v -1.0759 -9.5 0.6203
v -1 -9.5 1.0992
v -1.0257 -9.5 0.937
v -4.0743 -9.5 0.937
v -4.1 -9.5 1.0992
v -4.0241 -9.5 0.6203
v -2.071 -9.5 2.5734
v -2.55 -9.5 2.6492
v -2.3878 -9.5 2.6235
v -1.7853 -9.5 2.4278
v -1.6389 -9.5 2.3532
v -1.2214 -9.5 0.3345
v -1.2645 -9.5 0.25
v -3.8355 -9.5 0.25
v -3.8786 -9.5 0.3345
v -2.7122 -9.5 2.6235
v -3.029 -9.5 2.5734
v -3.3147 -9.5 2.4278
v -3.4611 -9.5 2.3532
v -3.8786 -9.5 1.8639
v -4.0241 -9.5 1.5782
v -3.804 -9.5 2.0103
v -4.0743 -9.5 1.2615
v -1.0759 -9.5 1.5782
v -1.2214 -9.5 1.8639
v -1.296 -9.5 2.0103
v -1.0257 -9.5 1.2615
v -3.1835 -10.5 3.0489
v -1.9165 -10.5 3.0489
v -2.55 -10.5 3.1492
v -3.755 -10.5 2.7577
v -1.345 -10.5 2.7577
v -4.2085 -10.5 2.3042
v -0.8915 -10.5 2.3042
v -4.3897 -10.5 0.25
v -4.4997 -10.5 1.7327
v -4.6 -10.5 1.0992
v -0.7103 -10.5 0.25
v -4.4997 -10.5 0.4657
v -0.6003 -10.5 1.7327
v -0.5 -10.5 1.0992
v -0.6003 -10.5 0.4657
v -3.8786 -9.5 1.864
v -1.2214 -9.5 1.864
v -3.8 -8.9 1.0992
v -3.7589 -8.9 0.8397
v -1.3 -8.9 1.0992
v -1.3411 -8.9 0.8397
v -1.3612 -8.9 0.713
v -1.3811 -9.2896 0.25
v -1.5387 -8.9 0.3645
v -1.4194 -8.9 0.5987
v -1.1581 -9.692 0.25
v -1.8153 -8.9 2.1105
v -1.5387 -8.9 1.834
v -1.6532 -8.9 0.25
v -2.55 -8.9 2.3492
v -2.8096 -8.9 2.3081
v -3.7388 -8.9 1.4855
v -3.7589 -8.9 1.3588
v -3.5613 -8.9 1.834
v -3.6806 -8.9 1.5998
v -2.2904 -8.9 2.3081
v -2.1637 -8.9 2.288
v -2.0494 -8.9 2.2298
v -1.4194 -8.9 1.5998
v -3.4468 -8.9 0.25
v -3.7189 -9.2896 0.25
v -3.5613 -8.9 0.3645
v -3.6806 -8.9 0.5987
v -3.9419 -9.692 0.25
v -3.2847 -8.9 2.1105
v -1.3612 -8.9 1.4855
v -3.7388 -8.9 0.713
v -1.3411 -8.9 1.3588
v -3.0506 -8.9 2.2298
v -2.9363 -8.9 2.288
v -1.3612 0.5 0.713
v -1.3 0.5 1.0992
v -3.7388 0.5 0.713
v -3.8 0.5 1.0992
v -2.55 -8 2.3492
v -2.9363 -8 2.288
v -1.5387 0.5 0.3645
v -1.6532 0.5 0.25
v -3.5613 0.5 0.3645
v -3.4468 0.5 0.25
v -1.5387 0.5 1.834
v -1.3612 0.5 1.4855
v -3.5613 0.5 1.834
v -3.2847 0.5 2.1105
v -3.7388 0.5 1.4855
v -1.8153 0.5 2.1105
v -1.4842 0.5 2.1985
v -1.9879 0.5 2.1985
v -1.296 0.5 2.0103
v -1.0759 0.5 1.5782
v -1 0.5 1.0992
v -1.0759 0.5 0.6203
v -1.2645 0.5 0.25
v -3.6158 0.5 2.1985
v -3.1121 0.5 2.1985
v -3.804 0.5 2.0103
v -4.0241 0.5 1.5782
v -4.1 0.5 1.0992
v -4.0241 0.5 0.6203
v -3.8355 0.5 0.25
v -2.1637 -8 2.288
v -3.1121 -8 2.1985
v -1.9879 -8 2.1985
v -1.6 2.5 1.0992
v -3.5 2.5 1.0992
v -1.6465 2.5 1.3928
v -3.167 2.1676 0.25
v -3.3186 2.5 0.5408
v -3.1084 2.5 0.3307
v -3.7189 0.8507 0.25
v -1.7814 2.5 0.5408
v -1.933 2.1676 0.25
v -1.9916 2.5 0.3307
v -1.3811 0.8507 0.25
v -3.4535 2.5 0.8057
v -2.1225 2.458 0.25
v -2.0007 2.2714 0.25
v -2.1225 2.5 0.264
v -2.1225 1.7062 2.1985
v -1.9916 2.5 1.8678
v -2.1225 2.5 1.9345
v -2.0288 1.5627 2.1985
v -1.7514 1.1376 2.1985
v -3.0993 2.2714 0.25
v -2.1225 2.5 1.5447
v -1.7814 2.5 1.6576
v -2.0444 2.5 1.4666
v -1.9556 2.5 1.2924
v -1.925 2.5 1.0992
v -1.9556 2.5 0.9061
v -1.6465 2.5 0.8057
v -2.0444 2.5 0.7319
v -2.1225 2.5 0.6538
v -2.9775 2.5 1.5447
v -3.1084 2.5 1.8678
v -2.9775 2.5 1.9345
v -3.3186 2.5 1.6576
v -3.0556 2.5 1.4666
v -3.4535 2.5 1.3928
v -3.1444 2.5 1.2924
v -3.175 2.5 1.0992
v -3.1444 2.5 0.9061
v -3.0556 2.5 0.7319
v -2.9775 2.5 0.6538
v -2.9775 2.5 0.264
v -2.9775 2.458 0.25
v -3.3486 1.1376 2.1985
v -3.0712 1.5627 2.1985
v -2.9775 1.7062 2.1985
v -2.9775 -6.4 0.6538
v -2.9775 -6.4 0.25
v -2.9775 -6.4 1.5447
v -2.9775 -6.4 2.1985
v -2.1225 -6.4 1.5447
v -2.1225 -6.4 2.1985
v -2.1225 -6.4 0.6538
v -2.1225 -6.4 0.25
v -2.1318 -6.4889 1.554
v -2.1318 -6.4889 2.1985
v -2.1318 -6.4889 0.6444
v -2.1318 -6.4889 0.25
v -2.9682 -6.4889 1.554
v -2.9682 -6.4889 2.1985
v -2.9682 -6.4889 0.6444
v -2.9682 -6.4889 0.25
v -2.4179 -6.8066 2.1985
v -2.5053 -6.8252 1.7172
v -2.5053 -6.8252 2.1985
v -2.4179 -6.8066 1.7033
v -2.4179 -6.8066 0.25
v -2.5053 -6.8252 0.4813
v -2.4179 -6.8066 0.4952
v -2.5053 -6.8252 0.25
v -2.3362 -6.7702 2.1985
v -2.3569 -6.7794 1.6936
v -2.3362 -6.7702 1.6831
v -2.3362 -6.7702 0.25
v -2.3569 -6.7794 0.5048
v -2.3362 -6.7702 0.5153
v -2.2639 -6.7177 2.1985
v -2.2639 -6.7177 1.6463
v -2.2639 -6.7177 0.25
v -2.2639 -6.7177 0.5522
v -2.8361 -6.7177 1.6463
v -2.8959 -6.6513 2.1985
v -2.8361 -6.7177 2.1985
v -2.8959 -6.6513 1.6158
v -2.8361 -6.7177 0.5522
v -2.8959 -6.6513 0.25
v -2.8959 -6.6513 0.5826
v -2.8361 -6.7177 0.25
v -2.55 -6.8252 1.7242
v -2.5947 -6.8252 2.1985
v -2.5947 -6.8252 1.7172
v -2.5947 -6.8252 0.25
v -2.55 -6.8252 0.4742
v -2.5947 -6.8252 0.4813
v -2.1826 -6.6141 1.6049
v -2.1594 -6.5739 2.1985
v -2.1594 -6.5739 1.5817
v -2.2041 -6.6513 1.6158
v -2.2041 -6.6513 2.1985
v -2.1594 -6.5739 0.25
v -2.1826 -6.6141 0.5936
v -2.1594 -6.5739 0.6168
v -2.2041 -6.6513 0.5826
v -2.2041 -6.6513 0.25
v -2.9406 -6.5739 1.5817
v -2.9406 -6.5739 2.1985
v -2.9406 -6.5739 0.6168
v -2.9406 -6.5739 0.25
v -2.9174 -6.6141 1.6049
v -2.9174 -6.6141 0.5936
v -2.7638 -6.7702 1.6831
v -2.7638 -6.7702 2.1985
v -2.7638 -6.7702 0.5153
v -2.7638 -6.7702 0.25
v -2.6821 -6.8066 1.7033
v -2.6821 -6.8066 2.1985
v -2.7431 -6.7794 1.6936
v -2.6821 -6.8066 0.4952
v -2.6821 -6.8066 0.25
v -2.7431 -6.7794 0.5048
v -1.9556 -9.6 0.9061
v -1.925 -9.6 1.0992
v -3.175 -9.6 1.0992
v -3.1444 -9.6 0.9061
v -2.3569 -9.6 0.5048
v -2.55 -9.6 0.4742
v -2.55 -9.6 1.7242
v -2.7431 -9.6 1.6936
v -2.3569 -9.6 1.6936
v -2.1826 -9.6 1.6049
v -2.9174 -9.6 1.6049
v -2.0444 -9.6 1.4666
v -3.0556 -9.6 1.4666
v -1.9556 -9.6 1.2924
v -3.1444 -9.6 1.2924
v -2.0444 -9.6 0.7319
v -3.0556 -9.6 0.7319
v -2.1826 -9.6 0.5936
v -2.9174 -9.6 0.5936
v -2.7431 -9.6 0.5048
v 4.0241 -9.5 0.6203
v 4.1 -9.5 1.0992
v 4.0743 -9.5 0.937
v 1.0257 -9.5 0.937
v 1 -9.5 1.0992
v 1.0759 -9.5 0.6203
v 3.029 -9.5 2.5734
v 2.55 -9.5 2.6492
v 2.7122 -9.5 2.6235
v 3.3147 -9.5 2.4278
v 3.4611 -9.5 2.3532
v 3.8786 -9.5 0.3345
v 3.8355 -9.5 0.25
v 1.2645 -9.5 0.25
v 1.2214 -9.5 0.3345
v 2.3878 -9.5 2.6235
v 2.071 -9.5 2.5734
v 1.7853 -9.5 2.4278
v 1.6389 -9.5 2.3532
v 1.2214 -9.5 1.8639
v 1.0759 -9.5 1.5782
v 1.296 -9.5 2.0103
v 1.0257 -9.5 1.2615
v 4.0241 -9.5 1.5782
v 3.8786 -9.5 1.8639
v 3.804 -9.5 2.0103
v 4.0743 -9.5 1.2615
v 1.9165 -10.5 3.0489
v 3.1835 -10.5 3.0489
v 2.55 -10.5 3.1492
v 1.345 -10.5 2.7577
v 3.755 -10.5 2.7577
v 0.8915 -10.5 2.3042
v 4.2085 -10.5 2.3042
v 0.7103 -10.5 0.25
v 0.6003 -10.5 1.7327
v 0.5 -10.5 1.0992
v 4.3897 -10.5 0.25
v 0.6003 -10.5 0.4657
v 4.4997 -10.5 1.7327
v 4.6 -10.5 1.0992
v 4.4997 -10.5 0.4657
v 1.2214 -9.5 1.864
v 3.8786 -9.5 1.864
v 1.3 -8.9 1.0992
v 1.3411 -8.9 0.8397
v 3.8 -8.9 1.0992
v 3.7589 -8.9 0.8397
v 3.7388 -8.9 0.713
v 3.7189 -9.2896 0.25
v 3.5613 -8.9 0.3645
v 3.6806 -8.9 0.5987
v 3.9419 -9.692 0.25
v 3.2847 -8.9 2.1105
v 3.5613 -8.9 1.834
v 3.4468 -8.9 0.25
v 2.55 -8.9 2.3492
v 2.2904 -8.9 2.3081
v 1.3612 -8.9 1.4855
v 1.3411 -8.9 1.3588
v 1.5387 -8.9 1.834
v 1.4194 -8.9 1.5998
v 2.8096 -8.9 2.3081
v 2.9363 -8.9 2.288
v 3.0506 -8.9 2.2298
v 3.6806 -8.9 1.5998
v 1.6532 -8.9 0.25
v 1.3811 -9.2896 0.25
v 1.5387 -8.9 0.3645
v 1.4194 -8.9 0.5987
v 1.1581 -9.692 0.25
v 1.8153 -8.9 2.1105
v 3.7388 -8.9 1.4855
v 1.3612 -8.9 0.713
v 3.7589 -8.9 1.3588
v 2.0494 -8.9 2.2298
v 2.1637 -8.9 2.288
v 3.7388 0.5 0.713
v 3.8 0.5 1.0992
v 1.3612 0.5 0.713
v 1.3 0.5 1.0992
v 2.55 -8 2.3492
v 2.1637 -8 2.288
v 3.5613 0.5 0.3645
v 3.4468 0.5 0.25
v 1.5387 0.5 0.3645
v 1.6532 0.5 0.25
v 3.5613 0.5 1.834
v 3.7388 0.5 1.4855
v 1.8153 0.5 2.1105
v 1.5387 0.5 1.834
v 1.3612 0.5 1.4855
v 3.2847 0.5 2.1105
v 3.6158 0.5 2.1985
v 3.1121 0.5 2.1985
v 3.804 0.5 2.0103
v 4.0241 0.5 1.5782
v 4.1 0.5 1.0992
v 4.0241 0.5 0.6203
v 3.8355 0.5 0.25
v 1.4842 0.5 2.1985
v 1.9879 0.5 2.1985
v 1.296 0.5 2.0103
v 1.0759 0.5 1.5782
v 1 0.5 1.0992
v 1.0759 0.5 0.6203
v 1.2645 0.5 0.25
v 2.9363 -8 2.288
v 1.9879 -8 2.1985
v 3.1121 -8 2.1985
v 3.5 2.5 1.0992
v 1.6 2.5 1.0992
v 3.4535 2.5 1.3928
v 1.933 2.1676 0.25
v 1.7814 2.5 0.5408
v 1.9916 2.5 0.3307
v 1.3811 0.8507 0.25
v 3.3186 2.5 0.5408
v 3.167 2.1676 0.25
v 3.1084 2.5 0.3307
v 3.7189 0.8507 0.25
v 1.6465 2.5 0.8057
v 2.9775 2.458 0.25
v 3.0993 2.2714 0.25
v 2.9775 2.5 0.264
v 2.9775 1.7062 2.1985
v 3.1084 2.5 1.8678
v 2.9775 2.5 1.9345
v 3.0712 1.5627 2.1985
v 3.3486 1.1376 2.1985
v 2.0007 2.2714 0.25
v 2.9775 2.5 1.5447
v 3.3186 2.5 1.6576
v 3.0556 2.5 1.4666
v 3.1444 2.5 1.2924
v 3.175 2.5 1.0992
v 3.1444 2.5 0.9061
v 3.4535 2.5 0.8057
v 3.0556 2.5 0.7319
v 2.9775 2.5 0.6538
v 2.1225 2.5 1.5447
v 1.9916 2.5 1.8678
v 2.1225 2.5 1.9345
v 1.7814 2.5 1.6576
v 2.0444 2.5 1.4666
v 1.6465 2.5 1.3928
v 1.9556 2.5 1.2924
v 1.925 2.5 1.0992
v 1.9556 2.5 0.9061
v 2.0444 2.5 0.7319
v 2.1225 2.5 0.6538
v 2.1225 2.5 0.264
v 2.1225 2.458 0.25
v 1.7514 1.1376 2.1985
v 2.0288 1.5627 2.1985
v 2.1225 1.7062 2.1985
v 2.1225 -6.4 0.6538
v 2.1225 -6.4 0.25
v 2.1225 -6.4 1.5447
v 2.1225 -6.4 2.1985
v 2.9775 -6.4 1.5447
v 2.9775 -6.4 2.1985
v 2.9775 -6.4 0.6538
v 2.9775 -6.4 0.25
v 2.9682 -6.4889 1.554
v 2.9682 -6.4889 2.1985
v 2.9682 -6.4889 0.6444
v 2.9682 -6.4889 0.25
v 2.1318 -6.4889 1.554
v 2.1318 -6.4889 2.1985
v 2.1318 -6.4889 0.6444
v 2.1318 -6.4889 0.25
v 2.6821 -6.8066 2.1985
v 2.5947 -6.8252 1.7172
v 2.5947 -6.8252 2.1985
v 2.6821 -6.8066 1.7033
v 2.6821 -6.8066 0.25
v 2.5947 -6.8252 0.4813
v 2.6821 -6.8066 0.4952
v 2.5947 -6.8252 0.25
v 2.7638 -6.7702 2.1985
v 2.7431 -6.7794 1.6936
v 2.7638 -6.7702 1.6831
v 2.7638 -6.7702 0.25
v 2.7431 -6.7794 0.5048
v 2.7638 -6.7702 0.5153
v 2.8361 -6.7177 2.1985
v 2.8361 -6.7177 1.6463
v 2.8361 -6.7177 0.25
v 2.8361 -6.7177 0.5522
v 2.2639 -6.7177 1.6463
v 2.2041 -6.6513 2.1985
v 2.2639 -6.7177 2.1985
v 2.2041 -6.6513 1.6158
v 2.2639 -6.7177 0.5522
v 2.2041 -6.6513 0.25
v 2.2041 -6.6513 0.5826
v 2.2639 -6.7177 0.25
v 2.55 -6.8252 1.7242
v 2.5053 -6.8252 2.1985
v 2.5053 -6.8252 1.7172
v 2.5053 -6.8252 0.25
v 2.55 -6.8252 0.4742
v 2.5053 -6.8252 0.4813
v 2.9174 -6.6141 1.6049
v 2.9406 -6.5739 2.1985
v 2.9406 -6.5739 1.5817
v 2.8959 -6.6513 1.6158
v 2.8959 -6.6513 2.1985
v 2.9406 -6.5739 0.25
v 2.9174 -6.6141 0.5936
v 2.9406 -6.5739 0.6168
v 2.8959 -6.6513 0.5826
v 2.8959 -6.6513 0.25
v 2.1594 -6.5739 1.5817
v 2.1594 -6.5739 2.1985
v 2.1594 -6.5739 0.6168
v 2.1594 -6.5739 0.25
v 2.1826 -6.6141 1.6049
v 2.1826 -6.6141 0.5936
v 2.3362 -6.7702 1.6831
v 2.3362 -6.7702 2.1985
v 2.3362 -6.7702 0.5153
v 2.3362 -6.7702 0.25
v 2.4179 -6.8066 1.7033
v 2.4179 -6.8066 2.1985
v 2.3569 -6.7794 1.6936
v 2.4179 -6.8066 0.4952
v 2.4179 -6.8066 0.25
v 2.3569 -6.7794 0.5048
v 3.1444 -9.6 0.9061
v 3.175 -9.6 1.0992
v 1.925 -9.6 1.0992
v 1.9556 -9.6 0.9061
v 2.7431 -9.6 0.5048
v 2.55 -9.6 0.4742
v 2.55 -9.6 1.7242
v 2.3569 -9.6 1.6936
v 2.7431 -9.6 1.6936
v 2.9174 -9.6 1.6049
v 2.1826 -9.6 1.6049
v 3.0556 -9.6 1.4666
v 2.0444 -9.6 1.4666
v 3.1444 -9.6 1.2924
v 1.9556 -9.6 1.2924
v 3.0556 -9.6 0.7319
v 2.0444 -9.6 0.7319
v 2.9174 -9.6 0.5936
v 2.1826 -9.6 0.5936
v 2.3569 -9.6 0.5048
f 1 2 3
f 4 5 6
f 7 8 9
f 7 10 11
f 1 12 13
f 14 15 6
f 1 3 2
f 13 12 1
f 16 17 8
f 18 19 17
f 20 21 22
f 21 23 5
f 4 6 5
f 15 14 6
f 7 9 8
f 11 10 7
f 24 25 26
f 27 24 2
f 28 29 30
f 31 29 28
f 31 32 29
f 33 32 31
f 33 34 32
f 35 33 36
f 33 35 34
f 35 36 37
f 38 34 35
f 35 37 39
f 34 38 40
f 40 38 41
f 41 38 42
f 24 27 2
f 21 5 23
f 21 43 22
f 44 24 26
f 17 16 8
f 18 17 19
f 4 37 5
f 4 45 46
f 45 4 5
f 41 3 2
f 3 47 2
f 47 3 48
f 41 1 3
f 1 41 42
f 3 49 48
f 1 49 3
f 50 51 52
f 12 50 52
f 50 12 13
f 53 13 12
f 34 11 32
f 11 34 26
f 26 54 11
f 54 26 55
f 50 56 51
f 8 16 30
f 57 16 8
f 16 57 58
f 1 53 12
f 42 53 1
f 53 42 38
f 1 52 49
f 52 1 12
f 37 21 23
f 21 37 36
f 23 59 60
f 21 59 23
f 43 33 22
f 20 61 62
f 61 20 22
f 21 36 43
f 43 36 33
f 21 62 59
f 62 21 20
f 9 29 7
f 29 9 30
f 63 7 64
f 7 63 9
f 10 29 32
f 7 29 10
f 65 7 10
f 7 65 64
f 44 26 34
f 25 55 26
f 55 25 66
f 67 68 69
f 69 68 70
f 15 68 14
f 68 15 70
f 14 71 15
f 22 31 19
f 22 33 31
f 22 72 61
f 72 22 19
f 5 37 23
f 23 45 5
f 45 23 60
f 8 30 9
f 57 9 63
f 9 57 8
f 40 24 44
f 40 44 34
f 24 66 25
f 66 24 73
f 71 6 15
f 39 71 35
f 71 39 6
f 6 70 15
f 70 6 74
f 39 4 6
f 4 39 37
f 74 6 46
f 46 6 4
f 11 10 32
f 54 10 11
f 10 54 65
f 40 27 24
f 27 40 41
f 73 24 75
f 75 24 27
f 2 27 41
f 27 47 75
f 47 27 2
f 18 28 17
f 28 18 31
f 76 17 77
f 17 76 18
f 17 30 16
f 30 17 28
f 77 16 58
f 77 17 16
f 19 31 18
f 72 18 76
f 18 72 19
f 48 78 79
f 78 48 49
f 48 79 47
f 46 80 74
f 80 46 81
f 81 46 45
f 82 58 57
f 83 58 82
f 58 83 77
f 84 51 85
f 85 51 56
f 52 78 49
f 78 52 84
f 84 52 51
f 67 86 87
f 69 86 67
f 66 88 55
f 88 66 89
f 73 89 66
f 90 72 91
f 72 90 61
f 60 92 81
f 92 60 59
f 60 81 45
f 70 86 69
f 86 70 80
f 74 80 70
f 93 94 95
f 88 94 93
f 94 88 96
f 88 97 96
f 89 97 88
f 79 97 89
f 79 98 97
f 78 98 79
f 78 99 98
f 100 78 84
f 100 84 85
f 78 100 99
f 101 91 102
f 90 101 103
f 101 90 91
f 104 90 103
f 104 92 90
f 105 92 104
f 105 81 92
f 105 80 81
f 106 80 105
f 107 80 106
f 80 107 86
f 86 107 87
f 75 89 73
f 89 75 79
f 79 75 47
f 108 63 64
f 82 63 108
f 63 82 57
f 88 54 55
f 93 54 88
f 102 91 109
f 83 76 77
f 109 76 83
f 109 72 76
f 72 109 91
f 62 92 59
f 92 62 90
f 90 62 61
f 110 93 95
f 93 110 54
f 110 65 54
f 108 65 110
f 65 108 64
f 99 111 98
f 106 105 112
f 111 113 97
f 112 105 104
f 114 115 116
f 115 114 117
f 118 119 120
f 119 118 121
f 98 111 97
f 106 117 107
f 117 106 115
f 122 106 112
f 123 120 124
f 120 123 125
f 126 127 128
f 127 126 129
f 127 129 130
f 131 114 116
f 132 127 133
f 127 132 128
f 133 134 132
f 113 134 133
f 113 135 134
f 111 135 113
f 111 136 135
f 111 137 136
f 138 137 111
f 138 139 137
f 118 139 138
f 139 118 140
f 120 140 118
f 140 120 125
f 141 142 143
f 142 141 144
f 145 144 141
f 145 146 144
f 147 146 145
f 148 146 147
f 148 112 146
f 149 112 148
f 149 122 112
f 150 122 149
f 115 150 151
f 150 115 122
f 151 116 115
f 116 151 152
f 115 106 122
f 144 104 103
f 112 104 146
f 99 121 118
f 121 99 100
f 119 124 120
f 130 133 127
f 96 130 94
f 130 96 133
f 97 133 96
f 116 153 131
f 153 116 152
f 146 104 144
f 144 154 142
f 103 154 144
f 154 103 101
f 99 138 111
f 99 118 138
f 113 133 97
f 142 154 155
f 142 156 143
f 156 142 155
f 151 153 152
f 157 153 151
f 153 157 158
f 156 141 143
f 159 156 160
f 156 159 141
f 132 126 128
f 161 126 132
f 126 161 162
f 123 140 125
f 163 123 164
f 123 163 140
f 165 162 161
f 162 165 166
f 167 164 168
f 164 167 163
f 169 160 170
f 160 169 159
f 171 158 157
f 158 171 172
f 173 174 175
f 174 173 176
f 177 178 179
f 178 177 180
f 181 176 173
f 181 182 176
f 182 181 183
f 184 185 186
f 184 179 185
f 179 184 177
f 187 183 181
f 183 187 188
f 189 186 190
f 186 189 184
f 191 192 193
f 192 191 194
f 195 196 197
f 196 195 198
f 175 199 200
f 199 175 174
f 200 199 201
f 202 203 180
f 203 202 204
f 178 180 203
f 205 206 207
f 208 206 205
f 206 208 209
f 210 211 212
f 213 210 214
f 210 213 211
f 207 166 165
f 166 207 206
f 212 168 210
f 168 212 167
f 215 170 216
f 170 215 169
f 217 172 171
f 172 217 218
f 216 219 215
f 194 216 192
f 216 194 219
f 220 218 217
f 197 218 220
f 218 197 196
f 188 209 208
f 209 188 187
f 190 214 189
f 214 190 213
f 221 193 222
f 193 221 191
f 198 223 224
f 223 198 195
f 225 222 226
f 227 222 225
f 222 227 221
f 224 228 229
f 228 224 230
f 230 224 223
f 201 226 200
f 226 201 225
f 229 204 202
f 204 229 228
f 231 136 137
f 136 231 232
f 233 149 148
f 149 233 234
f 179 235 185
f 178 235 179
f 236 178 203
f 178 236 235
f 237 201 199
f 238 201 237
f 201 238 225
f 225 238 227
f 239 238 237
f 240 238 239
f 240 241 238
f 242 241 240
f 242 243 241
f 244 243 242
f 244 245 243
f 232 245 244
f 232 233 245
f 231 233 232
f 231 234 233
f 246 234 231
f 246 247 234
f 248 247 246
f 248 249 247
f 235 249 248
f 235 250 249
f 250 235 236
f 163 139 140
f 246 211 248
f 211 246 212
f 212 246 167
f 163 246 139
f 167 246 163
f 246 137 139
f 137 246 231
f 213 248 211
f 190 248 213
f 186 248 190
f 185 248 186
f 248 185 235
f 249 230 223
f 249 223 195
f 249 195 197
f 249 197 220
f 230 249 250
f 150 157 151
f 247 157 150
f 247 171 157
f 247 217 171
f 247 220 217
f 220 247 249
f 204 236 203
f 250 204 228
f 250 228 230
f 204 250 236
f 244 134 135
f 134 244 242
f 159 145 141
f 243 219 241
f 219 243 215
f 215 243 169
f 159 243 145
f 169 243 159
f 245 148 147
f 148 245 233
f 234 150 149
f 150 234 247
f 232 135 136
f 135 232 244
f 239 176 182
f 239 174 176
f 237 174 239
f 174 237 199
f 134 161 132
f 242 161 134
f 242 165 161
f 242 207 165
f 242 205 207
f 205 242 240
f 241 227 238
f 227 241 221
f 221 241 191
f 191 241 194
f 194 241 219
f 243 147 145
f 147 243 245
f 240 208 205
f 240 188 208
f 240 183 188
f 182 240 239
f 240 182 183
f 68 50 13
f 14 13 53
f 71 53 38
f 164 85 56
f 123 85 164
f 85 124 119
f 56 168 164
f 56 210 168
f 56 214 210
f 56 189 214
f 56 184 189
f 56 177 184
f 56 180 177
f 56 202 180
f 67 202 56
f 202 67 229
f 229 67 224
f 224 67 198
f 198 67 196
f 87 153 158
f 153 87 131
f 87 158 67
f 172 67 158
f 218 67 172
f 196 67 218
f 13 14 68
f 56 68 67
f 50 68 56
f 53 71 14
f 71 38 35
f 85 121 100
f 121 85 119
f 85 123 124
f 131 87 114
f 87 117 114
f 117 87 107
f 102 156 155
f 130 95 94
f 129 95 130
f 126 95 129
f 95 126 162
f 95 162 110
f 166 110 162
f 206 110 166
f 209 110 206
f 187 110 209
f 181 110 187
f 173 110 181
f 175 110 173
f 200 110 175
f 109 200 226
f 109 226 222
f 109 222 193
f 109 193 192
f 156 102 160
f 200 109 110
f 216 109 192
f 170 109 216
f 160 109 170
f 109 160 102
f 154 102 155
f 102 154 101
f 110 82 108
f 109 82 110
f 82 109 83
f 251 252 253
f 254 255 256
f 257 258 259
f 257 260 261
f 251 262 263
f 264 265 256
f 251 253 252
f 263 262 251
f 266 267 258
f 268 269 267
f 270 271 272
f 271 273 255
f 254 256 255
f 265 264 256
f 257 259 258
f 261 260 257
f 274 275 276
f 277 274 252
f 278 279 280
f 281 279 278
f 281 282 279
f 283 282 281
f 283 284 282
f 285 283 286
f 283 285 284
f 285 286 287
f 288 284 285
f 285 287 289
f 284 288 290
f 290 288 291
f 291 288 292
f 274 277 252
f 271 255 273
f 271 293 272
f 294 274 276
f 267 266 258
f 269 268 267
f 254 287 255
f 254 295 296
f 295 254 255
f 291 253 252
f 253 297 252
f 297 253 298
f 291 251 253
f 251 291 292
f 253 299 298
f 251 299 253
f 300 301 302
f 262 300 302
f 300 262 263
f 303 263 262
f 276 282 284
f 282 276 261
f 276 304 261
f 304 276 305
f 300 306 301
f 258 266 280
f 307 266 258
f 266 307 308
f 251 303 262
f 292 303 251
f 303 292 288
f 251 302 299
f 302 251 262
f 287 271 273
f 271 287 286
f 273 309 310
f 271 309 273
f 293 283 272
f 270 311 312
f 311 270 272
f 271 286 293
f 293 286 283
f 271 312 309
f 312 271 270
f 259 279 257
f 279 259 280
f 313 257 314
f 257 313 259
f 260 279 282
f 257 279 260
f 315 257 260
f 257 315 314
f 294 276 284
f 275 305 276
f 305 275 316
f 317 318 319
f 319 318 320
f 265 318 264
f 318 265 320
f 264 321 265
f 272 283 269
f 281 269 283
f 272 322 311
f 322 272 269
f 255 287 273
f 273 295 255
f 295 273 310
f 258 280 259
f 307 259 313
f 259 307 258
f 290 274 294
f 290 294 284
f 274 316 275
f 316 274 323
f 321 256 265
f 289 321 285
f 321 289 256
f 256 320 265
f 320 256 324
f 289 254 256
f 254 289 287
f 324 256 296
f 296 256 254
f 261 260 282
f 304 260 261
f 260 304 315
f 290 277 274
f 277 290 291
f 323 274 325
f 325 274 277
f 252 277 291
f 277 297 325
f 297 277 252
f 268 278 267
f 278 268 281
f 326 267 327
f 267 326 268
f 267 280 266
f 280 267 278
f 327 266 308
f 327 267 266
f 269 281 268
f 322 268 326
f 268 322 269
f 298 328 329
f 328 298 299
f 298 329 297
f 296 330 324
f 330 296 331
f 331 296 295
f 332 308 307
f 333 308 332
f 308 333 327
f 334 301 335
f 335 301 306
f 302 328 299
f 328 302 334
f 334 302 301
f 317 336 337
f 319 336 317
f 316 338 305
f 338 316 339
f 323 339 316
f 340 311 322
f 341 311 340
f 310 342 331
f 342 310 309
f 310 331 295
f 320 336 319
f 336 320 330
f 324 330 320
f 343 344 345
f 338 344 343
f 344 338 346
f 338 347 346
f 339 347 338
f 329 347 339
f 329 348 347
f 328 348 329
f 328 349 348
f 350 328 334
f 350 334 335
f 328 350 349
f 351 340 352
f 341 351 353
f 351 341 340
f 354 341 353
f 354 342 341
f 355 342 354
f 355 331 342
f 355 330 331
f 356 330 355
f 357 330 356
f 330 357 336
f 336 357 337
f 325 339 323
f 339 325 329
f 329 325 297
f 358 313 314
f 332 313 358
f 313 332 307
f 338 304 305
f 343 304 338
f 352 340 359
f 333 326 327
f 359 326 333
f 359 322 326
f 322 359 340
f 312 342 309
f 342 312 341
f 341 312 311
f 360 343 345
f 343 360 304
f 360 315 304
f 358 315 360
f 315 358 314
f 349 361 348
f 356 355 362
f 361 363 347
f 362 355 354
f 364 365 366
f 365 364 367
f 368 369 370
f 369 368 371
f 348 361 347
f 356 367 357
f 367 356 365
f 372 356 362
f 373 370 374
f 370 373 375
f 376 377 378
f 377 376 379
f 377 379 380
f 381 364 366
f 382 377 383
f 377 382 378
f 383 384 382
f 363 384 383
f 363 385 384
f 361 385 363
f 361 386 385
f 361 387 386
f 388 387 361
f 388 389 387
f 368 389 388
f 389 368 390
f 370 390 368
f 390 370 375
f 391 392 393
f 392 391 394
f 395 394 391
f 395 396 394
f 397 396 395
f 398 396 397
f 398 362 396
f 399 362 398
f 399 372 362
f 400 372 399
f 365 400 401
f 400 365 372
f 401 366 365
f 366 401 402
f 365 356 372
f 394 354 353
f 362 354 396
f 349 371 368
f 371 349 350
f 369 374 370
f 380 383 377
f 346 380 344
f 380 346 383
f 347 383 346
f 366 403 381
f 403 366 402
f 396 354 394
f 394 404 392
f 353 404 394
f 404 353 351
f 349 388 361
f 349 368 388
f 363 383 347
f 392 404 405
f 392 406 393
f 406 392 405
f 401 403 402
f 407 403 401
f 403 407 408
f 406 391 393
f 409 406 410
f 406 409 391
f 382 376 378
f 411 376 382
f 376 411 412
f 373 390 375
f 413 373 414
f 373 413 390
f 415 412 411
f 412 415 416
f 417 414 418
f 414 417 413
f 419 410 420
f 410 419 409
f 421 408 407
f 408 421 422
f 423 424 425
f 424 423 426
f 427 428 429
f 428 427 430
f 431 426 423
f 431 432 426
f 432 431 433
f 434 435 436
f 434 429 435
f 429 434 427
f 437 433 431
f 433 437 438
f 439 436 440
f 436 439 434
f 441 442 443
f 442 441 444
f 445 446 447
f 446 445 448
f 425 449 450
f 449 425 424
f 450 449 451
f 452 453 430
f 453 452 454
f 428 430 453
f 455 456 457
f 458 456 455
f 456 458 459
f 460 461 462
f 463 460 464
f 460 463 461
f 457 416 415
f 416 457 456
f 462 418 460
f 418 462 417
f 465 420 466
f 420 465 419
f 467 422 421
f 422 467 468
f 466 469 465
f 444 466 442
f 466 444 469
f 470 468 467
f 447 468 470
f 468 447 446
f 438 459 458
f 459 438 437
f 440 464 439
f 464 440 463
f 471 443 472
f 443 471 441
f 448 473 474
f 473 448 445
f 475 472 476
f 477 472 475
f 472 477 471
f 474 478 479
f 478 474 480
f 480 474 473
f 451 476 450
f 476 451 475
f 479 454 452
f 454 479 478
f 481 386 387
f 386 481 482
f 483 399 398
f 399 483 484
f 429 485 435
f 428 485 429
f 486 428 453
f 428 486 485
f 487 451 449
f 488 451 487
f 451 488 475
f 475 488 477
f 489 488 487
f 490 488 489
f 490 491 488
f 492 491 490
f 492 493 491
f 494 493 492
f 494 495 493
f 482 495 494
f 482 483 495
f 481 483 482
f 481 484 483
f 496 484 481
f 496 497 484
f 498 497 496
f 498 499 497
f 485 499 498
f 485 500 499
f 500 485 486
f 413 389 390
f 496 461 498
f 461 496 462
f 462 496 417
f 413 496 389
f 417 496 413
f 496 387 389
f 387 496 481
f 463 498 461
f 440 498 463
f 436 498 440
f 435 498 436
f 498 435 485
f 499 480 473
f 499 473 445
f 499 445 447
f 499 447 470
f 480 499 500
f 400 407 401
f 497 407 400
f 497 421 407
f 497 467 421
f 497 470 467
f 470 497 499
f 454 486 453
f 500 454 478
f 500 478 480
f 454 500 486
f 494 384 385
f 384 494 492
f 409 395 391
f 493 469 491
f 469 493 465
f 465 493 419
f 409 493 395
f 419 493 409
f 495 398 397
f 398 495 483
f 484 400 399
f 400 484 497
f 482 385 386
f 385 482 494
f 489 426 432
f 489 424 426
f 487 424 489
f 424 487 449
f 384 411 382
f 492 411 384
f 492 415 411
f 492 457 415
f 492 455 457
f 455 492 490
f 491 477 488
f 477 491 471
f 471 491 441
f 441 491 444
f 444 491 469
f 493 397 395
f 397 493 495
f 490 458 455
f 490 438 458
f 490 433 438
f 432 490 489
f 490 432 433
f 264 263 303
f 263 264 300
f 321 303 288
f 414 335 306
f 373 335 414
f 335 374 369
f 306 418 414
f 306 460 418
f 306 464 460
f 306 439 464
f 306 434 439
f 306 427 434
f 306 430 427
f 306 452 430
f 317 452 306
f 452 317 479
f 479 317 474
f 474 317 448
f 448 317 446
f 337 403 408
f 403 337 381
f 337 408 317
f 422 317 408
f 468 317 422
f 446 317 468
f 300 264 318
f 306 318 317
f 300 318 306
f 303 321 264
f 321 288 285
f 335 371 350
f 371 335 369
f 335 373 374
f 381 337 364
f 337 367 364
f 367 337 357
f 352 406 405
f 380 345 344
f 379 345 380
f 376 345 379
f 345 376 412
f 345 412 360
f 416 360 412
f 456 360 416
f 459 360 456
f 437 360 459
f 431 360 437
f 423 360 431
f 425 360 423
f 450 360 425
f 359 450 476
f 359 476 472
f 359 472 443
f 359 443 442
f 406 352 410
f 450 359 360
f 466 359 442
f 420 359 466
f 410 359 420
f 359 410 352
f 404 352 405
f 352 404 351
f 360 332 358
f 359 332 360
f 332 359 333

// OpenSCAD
// Compact Board clip
// For Raspberry Pi Zero Test Controller (Brian Khuu 2019)
// Remixed from https://www.thingiverse.com/thing:1520316/files Board clip by robidouille Apr 27, 2016

//hole = 2.8; // Arduino
hole = 2.5; // Raspberry Pi

marginT = 0.6; // Controls the size of the grip
marginB = marginT;
skirt = 1;
rise = 10;
bump = 1;
thick = 1;

slotAngle = 20;
slot = hole * sin(slotAngle);
shave = hole * (1 - cos(slotAngle));

eps = 0.1;

Repeat(2, 1, hole + marginB + skirt + 1, rise + rise + 1) translate([0, 0, hole/2 - shave]) rotate([-90, 0, 0]) HoleClip();

module Repeat(count_x, count_y, size_x, size_y) {
	for (i = [0 : count_x - 1]) {
		for (j = [0 : count_y - 1]) {
			translate([(i - (count_x - 1) / 2) * size_x, (j - (count_y - 1) / 2) * size_y - size_y/2, 0])
			children();
		}
	}
}

module HoleClip() {
  union()
  {
    difference() {
        union() {
            cylinder( d = hole + marginB, h = thick, $fn=20);
            cylinder( d1 = hole + marginB + skirt, d2 = hole + marginB - skirt, h = skirt * 2, $fn=20);
            translate([0, 0, thick - eps])
              cylinder(d = hole, h = rise + eps, $fn=20);
            translate([0, 0, rise + thick]) 
              cylinder(d1 = hole + marginT, d2 = hole - marginT, h = bump * 2, $fn=20);
        }
        
        // Slot Cut
        slot_depth = 7+bump*2; // Adjust based on material
        translate([-slot / 2, -(hole + marginB + eps)/2, rise + thick + bump * 2 - slot_depth+eps]) cube([slot, hole + marginB + eps, slot_depth]);
        
        translate([0, +(hole + marginB + eps)/2, rise + thick + bump * 2 - slot_depth+eps])
          rotate([90,0,0]) cylinder(r=(slot)/2, h = hole + marginB + eps, $fn=30);


        // Center Cut
        translate([0, 0, thick - eps])
          cylinder(d = hole/2, h = rise + bump * 2 + 2, $fn=20);

        // Top and bottom cut
        translate([-(hole + marginB + skirt)/2, hole*4/10 - shave, -eps]) 
          cube([hole + marginB + skirt, marginB + skirt, rise + thick+bump * 2+10]);
        translate([-(hole + marginB + skirt)/2, -hole/2 + shave - (marginB + skirt), rise/4]) 
          cube([hole + marginB + skirt, marginB + skirt, rise +  rise + eps * 2 + bump*2]);
    }
  }
}
